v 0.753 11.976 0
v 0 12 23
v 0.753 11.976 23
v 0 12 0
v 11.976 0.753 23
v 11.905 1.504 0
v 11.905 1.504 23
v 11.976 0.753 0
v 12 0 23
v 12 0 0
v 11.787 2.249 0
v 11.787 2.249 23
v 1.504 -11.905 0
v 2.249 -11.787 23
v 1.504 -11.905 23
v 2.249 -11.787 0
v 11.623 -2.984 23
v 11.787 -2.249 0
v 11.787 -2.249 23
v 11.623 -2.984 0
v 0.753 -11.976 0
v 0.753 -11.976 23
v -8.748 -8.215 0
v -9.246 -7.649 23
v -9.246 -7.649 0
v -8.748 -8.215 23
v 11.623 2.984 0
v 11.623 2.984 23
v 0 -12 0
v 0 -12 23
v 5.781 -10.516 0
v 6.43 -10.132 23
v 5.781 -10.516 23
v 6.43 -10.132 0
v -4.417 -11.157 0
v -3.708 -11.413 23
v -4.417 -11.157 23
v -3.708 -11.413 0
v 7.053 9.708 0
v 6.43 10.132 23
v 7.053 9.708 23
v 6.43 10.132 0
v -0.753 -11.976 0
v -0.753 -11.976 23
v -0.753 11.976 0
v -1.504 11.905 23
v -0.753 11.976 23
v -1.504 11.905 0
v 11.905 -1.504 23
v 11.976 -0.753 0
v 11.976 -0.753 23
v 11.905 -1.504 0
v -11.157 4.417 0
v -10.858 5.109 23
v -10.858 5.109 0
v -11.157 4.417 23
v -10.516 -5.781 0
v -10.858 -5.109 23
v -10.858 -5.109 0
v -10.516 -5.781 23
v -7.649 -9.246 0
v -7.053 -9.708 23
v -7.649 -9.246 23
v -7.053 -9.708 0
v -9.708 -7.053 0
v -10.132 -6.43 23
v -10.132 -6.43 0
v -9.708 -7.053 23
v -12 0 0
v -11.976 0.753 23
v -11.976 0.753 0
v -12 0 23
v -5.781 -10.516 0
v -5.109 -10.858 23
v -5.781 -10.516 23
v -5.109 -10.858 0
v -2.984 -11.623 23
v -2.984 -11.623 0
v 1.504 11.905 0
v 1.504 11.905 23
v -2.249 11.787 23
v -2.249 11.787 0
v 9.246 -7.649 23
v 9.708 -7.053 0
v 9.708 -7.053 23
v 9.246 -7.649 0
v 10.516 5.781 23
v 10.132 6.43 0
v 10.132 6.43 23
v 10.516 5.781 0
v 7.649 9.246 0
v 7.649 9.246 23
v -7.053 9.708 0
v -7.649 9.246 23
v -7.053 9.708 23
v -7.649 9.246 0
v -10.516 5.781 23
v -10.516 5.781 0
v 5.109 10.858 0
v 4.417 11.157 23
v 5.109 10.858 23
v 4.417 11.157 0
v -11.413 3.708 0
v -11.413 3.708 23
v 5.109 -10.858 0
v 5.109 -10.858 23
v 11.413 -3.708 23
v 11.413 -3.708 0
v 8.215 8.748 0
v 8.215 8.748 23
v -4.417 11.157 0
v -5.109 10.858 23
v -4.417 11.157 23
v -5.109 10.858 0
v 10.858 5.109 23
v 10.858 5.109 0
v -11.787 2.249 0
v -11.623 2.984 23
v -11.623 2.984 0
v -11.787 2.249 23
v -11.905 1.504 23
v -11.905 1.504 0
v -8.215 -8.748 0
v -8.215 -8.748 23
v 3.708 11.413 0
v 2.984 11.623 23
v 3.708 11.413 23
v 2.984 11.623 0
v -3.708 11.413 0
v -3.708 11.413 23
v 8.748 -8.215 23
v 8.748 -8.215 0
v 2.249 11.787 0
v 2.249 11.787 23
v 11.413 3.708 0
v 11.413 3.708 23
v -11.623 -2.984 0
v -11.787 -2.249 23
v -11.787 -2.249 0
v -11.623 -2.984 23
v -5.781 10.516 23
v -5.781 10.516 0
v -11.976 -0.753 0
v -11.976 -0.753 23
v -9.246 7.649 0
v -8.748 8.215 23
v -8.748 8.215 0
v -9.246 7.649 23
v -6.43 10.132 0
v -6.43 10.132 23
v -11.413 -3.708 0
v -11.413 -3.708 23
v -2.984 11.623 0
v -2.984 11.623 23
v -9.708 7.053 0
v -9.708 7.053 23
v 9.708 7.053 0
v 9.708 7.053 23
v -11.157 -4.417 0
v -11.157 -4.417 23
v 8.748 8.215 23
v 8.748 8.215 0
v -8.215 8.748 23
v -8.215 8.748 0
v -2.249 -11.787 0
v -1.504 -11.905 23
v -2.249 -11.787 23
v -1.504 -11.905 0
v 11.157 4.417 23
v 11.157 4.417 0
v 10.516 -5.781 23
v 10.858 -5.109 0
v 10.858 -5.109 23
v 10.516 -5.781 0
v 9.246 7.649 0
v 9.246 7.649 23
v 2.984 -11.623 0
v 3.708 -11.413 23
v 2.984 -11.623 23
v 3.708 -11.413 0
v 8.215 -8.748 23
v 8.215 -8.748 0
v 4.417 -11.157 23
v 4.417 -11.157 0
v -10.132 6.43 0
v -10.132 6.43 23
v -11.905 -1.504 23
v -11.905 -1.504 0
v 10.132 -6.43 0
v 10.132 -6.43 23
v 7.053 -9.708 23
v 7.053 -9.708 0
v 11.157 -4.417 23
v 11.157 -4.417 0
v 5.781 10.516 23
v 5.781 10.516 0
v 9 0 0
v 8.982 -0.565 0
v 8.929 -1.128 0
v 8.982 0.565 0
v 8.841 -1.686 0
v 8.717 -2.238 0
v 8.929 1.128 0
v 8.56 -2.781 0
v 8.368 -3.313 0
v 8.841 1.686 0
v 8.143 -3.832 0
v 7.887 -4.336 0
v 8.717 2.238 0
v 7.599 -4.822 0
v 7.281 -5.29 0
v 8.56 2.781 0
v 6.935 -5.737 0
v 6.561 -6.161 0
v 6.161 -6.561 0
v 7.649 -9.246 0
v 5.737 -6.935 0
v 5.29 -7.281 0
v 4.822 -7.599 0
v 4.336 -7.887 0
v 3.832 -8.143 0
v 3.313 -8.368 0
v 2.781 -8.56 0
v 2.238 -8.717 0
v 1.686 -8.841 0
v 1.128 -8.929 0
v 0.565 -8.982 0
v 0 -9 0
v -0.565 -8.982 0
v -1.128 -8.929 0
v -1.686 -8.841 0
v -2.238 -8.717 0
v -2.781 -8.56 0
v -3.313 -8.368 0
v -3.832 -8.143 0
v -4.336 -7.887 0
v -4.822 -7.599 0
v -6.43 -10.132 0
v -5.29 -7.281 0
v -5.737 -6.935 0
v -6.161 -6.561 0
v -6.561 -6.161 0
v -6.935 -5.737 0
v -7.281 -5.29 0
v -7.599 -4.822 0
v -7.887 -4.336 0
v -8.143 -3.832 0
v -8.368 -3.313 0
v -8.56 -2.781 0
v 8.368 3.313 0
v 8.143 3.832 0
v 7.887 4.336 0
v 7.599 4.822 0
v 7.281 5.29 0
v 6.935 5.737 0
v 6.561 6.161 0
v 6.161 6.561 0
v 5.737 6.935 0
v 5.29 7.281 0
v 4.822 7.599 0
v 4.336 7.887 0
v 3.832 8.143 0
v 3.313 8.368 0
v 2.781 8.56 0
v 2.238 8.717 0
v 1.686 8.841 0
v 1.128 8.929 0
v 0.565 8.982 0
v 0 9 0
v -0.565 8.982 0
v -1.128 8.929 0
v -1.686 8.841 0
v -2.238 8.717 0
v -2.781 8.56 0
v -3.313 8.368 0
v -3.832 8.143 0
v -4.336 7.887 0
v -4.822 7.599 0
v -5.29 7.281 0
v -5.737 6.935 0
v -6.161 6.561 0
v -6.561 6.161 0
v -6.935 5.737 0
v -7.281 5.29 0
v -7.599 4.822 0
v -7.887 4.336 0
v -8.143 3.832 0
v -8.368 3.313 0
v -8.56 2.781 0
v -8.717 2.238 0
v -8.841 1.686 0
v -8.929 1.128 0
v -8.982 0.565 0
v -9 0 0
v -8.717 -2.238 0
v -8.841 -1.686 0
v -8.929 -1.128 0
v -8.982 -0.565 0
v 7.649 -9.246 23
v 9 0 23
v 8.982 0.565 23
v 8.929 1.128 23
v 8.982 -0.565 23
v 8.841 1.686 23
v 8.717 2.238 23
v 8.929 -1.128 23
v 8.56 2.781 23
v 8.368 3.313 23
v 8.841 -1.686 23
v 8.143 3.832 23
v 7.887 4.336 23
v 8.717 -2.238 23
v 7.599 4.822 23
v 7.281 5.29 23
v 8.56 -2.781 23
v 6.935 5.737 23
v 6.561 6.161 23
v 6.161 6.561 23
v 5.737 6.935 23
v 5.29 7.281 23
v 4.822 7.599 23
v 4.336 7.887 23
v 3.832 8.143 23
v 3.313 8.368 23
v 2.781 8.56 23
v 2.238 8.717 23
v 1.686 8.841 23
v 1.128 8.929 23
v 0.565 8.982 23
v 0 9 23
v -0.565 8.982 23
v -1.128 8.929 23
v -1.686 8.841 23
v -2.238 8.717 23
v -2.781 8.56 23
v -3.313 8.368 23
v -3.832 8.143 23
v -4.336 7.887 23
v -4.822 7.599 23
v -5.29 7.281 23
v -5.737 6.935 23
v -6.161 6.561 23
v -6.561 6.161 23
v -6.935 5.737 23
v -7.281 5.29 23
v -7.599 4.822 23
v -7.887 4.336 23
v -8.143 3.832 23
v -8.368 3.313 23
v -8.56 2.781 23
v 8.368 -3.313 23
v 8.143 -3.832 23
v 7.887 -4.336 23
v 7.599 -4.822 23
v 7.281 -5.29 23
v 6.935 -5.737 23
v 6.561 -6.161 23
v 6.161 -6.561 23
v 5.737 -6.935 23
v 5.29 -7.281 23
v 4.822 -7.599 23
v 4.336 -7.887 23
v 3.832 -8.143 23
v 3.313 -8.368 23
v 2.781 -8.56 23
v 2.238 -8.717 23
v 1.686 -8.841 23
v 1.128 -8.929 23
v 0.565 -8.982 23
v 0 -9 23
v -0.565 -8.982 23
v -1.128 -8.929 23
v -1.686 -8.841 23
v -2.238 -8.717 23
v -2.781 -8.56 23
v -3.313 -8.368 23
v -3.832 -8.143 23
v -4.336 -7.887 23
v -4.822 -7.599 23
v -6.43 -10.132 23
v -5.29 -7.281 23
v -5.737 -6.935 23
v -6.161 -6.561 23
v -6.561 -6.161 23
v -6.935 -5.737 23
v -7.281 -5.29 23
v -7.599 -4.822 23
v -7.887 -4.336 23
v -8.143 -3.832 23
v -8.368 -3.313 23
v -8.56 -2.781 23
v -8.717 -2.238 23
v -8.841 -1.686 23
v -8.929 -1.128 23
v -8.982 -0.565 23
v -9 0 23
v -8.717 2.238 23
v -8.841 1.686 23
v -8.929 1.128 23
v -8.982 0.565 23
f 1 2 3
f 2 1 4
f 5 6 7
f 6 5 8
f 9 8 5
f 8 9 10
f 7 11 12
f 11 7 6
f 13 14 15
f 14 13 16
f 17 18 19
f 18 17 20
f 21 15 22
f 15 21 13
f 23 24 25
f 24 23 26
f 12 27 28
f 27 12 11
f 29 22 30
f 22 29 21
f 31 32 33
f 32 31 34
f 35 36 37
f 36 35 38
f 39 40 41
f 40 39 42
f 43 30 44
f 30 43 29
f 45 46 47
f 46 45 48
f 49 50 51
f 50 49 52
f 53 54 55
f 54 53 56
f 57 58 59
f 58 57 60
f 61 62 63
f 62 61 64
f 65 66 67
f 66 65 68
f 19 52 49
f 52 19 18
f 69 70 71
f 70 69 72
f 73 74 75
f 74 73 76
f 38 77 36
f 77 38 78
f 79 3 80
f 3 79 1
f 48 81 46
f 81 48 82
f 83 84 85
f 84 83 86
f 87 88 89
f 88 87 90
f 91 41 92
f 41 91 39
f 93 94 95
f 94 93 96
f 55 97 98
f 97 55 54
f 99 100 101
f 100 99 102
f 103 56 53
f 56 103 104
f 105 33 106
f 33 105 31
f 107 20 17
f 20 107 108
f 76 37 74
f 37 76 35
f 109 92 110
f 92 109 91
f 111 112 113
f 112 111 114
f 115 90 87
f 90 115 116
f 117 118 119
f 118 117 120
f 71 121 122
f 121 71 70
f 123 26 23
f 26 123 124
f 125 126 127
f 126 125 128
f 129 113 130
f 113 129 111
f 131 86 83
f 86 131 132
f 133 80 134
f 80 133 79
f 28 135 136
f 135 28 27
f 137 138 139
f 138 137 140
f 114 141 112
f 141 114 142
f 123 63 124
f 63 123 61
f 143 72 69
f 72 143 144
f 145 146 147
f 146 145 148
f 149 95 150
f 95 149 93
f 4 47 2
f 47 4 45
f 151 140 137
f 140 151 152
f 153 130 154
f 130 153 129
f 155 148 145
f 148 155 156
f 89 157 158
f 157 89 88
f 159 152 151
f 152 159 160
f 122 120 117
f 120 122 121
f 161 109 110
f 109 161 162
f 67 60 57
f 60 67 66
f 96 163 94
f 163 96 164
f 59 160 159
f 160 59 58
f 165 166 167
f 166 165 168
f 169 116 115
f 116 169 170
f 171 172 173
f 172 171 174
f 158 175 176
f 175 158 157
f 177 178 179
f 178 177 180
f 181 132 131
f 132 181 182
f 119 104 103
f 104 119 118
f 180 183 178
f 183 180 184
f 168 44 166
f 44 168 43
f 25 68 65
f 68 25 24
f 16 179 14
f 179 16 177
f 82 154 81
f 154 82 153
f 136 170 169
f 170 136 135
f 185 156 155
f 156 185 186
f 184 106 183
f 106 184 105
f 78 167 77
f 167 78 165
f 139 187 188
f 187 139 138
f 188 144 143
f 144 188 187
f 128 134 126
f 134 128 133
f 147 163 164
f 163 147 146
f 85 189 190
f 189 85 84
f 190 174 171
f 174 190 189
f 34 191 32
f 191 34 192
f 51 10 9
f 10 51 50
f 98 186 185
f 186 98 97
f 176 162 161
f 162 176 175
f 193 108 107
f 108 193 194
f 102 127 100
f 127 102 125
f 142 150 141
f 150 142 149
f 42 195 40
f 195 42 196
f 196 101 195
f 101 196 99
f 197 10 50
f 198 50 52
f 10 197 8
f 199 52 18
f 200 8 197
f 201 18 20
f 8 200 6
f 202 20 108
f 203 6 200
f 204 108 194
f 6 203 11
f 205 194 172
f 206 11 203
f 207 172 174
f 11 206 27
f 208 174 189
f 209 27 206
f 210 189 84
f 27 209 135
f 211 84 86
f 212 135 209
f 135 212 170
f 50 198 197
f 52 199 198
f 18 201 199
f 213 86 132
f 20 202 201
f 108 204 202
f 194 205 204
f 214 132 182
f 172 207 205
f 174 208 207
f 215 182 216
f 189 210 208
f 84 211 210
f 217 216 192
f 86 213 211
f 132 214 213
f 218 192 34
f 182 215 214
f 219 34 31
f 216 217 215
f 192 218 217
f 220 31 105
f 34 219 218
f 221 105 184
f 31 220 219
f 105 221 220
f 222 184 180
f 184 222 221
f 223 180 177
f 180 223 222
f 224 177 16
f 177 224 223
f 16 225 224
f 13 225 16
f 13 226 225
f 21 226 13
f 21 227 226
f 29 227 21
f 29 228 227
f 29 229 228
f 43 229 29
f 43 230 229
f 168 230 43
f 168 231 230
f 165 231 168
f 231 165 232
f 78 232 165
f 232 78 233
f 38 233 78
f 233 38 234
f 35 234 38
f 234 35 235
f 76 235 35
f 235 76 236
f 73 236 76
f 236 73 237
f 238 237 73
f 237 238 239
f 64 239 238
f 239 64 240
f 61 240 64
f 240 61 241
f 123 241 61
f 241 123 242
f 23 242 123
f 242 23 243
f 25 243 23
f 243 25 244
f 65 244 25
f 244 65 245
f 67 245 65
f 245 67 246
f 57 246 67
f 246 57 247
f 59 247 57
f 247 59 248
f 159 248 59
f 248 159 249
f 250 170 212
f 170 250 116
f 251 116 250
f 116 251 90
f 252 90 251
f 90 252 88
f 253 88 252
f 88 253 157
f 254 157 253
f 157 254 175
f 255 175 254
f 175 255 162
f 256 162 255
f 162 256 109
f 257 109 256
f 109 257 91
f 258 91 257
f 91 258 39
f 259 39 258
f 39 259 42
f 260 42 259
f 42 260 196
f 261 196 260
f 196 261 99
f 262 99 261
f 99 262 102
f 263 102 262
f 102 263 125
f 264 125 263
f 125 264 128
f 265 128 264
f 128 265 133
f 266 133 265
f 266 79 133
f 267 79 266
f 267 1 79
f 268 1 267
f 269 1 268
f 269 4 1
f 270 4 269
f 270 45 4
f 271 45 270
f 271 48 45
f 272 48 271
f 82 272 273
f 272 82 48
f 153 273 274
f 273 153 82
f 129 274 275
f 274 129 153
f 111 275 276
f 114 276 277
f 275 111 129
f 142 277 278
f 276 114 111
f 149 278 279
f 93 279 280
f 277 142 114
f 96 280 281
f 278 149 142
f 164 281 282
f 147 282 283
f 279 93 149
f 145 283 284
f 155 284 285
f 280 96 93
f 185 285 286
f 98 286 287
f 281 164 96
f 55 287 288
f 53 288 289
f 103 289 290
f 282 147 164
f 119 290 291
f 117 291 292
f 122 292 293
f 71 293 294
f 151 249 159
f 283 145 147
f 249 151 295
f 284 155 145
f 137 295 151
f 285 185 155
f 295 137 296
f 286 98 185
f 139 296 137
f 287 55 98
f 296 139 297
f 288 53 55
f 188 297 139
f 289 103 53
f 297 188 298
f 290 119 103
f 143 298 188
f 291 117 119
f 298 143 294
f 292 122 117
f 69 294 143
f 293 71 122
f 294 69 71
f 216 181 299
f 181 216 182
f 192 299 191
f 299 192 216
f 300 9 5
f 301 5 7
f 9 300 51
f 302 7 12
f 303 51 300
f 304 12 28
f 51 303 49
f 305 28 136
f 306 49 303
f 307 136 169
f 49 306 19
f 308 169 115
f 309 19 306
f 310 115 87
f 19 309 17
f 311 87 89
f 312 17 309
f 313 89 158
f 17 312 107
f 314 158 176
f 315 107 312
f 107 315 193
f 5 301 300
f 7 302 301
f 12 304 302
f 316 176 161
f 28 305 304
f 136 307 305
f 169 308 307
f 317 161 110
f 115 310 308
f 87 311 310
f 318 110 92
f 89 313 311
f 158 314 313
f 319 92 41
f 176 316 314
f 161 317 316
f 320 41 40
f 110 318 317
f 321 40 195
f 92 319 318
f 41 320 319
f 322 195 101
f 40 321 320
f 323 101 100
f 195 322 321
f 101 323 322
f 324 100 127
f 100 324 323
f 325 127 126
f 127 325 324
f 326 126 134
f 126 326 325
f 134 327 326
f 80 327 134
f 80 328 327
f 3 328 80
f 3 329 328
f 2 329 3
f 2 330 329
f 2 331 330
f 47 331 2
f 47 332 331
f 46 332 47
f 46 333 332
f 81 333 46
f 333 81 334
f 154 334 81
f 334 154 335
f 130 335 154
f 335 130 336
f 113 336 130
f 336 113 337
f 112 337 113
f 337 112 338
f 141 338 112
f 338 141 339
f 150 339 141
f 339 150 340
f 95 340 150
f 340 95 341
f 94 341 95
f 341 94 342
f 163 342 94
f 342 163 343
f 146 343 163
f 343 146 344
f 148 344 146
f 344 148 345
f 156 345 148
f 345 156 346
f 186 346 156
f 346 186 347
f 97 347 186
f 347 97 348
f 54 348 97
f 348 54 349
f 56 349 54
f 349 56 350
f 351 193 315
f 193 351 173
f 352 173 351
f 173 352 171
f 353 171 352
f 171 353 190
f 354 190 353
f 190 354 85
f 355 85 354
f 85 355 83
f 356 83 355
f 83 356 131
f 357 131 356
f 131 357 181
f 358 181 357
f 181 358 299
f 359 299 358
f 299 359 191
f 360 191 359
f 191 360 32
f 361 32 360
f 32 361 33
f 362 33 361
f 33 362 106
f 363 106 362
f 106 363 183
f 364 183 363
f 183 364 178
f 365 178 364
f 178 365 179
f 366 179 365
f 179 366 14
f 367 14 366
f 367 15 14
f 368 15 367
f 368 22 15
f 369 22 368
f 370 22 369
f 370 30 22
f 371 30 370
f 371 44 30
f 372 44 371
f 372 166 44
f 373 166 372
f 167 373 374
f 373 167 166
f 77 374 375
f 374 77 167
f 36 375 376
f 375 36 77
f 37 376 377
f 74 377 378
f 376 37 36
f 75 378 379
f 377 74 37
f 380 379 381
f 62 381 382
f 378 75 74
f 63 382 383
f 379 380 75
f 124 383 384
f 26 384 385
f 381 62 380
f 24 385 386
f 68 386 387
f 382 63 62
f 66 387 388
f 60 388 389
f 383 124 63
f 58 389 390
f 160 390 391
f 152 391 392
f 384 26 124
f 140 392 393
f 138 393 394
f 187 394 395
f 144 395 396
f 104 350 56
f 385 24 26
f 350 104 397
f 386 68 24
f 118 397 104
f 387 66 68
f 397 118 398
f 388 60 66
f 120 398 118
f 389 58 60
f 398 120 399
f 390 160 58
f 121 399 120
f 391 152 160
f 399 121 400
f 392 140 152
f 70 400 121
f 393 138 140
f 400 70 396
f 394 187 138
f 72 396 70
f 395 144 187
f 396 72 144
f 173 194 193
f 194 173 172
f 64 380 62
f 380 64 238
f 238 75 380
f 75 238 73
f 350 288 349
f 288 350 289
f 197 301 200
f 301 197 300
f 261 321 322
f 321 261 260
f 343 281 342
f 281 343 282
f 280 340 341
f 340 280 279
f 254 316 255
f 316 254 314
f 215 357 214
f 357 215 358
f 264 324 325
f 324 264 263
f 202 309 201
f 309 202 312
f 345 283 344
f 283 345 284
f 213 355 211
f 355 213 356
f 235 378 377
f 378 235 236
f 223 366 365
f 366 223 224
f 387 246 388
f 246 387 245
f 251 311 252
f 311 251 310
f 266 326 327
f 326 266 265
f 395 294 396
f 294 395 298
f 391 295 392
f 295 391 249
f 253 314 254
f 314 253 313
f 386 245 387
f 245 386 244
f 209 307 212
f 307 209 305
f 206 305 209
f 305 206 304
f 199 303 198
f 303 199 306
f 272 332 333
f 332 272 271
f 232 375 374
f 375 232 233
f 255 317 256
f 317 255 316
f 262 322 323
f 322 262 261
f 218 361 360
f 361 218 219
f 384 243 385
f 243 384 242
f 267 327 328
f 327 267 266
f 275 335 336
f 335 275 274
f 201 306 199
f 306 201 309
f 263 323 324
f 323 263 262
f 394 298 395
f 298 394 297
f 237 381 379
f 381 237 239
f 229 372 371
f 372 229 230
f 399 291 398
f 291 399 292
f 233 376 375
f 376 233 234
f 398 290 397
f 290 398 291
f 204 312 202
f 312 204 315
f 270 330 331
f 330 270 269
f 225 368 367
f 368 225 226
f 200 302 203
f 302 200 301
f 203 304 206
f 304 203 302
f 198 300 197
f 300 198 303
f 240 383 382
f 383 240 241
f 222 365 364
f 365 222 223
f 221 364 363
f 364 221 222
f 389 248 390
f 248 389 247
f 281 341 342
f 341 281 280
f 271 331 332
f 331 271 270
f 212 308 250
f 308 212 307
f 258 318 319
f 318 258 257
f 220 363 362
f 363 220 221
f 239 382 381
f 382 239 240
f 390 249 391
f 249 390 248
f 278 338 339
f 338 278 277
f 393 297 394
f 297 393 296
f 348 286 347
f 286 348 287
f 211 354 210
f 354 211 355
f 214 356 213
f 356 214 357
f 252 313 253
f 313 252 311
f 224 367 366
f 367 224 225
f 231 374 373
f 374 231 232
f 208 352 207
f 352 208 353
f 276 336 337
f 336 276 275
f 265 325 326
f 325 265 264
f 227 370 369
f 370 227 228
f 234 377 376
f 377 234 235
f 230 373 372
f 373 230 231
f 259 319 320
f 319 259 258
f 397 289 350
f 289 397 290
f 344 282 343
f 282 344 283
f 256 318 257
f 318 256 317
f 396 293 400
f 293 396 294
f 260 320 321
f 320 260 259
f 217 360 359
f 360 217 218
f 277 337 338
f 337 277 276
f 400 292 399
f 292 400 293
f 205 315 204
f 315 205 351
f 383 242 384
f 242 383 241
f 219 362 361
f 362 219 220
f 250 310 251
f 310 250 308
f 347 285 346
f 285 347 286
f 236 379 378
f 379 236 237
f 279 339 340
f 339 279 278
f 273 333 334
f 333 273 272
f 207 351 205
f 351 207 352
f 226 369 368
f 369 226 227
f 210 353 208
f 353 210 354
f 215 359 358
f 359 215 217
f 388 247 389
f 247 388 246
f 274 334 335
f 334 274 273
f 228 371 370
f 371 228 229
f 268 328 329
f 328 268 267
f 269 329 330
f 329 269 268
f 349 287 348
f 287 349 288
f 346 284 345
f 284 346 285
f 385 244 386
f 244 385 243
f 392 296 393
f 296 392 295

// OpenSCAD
// Spacers for wheelbarrow replacement wheel
r = 18/2;
t = 3;
h = 23;
$fn = 100;

difference() {
    cylinder(h, r+t, r+t);
    cylinder(h, r, r);
}
